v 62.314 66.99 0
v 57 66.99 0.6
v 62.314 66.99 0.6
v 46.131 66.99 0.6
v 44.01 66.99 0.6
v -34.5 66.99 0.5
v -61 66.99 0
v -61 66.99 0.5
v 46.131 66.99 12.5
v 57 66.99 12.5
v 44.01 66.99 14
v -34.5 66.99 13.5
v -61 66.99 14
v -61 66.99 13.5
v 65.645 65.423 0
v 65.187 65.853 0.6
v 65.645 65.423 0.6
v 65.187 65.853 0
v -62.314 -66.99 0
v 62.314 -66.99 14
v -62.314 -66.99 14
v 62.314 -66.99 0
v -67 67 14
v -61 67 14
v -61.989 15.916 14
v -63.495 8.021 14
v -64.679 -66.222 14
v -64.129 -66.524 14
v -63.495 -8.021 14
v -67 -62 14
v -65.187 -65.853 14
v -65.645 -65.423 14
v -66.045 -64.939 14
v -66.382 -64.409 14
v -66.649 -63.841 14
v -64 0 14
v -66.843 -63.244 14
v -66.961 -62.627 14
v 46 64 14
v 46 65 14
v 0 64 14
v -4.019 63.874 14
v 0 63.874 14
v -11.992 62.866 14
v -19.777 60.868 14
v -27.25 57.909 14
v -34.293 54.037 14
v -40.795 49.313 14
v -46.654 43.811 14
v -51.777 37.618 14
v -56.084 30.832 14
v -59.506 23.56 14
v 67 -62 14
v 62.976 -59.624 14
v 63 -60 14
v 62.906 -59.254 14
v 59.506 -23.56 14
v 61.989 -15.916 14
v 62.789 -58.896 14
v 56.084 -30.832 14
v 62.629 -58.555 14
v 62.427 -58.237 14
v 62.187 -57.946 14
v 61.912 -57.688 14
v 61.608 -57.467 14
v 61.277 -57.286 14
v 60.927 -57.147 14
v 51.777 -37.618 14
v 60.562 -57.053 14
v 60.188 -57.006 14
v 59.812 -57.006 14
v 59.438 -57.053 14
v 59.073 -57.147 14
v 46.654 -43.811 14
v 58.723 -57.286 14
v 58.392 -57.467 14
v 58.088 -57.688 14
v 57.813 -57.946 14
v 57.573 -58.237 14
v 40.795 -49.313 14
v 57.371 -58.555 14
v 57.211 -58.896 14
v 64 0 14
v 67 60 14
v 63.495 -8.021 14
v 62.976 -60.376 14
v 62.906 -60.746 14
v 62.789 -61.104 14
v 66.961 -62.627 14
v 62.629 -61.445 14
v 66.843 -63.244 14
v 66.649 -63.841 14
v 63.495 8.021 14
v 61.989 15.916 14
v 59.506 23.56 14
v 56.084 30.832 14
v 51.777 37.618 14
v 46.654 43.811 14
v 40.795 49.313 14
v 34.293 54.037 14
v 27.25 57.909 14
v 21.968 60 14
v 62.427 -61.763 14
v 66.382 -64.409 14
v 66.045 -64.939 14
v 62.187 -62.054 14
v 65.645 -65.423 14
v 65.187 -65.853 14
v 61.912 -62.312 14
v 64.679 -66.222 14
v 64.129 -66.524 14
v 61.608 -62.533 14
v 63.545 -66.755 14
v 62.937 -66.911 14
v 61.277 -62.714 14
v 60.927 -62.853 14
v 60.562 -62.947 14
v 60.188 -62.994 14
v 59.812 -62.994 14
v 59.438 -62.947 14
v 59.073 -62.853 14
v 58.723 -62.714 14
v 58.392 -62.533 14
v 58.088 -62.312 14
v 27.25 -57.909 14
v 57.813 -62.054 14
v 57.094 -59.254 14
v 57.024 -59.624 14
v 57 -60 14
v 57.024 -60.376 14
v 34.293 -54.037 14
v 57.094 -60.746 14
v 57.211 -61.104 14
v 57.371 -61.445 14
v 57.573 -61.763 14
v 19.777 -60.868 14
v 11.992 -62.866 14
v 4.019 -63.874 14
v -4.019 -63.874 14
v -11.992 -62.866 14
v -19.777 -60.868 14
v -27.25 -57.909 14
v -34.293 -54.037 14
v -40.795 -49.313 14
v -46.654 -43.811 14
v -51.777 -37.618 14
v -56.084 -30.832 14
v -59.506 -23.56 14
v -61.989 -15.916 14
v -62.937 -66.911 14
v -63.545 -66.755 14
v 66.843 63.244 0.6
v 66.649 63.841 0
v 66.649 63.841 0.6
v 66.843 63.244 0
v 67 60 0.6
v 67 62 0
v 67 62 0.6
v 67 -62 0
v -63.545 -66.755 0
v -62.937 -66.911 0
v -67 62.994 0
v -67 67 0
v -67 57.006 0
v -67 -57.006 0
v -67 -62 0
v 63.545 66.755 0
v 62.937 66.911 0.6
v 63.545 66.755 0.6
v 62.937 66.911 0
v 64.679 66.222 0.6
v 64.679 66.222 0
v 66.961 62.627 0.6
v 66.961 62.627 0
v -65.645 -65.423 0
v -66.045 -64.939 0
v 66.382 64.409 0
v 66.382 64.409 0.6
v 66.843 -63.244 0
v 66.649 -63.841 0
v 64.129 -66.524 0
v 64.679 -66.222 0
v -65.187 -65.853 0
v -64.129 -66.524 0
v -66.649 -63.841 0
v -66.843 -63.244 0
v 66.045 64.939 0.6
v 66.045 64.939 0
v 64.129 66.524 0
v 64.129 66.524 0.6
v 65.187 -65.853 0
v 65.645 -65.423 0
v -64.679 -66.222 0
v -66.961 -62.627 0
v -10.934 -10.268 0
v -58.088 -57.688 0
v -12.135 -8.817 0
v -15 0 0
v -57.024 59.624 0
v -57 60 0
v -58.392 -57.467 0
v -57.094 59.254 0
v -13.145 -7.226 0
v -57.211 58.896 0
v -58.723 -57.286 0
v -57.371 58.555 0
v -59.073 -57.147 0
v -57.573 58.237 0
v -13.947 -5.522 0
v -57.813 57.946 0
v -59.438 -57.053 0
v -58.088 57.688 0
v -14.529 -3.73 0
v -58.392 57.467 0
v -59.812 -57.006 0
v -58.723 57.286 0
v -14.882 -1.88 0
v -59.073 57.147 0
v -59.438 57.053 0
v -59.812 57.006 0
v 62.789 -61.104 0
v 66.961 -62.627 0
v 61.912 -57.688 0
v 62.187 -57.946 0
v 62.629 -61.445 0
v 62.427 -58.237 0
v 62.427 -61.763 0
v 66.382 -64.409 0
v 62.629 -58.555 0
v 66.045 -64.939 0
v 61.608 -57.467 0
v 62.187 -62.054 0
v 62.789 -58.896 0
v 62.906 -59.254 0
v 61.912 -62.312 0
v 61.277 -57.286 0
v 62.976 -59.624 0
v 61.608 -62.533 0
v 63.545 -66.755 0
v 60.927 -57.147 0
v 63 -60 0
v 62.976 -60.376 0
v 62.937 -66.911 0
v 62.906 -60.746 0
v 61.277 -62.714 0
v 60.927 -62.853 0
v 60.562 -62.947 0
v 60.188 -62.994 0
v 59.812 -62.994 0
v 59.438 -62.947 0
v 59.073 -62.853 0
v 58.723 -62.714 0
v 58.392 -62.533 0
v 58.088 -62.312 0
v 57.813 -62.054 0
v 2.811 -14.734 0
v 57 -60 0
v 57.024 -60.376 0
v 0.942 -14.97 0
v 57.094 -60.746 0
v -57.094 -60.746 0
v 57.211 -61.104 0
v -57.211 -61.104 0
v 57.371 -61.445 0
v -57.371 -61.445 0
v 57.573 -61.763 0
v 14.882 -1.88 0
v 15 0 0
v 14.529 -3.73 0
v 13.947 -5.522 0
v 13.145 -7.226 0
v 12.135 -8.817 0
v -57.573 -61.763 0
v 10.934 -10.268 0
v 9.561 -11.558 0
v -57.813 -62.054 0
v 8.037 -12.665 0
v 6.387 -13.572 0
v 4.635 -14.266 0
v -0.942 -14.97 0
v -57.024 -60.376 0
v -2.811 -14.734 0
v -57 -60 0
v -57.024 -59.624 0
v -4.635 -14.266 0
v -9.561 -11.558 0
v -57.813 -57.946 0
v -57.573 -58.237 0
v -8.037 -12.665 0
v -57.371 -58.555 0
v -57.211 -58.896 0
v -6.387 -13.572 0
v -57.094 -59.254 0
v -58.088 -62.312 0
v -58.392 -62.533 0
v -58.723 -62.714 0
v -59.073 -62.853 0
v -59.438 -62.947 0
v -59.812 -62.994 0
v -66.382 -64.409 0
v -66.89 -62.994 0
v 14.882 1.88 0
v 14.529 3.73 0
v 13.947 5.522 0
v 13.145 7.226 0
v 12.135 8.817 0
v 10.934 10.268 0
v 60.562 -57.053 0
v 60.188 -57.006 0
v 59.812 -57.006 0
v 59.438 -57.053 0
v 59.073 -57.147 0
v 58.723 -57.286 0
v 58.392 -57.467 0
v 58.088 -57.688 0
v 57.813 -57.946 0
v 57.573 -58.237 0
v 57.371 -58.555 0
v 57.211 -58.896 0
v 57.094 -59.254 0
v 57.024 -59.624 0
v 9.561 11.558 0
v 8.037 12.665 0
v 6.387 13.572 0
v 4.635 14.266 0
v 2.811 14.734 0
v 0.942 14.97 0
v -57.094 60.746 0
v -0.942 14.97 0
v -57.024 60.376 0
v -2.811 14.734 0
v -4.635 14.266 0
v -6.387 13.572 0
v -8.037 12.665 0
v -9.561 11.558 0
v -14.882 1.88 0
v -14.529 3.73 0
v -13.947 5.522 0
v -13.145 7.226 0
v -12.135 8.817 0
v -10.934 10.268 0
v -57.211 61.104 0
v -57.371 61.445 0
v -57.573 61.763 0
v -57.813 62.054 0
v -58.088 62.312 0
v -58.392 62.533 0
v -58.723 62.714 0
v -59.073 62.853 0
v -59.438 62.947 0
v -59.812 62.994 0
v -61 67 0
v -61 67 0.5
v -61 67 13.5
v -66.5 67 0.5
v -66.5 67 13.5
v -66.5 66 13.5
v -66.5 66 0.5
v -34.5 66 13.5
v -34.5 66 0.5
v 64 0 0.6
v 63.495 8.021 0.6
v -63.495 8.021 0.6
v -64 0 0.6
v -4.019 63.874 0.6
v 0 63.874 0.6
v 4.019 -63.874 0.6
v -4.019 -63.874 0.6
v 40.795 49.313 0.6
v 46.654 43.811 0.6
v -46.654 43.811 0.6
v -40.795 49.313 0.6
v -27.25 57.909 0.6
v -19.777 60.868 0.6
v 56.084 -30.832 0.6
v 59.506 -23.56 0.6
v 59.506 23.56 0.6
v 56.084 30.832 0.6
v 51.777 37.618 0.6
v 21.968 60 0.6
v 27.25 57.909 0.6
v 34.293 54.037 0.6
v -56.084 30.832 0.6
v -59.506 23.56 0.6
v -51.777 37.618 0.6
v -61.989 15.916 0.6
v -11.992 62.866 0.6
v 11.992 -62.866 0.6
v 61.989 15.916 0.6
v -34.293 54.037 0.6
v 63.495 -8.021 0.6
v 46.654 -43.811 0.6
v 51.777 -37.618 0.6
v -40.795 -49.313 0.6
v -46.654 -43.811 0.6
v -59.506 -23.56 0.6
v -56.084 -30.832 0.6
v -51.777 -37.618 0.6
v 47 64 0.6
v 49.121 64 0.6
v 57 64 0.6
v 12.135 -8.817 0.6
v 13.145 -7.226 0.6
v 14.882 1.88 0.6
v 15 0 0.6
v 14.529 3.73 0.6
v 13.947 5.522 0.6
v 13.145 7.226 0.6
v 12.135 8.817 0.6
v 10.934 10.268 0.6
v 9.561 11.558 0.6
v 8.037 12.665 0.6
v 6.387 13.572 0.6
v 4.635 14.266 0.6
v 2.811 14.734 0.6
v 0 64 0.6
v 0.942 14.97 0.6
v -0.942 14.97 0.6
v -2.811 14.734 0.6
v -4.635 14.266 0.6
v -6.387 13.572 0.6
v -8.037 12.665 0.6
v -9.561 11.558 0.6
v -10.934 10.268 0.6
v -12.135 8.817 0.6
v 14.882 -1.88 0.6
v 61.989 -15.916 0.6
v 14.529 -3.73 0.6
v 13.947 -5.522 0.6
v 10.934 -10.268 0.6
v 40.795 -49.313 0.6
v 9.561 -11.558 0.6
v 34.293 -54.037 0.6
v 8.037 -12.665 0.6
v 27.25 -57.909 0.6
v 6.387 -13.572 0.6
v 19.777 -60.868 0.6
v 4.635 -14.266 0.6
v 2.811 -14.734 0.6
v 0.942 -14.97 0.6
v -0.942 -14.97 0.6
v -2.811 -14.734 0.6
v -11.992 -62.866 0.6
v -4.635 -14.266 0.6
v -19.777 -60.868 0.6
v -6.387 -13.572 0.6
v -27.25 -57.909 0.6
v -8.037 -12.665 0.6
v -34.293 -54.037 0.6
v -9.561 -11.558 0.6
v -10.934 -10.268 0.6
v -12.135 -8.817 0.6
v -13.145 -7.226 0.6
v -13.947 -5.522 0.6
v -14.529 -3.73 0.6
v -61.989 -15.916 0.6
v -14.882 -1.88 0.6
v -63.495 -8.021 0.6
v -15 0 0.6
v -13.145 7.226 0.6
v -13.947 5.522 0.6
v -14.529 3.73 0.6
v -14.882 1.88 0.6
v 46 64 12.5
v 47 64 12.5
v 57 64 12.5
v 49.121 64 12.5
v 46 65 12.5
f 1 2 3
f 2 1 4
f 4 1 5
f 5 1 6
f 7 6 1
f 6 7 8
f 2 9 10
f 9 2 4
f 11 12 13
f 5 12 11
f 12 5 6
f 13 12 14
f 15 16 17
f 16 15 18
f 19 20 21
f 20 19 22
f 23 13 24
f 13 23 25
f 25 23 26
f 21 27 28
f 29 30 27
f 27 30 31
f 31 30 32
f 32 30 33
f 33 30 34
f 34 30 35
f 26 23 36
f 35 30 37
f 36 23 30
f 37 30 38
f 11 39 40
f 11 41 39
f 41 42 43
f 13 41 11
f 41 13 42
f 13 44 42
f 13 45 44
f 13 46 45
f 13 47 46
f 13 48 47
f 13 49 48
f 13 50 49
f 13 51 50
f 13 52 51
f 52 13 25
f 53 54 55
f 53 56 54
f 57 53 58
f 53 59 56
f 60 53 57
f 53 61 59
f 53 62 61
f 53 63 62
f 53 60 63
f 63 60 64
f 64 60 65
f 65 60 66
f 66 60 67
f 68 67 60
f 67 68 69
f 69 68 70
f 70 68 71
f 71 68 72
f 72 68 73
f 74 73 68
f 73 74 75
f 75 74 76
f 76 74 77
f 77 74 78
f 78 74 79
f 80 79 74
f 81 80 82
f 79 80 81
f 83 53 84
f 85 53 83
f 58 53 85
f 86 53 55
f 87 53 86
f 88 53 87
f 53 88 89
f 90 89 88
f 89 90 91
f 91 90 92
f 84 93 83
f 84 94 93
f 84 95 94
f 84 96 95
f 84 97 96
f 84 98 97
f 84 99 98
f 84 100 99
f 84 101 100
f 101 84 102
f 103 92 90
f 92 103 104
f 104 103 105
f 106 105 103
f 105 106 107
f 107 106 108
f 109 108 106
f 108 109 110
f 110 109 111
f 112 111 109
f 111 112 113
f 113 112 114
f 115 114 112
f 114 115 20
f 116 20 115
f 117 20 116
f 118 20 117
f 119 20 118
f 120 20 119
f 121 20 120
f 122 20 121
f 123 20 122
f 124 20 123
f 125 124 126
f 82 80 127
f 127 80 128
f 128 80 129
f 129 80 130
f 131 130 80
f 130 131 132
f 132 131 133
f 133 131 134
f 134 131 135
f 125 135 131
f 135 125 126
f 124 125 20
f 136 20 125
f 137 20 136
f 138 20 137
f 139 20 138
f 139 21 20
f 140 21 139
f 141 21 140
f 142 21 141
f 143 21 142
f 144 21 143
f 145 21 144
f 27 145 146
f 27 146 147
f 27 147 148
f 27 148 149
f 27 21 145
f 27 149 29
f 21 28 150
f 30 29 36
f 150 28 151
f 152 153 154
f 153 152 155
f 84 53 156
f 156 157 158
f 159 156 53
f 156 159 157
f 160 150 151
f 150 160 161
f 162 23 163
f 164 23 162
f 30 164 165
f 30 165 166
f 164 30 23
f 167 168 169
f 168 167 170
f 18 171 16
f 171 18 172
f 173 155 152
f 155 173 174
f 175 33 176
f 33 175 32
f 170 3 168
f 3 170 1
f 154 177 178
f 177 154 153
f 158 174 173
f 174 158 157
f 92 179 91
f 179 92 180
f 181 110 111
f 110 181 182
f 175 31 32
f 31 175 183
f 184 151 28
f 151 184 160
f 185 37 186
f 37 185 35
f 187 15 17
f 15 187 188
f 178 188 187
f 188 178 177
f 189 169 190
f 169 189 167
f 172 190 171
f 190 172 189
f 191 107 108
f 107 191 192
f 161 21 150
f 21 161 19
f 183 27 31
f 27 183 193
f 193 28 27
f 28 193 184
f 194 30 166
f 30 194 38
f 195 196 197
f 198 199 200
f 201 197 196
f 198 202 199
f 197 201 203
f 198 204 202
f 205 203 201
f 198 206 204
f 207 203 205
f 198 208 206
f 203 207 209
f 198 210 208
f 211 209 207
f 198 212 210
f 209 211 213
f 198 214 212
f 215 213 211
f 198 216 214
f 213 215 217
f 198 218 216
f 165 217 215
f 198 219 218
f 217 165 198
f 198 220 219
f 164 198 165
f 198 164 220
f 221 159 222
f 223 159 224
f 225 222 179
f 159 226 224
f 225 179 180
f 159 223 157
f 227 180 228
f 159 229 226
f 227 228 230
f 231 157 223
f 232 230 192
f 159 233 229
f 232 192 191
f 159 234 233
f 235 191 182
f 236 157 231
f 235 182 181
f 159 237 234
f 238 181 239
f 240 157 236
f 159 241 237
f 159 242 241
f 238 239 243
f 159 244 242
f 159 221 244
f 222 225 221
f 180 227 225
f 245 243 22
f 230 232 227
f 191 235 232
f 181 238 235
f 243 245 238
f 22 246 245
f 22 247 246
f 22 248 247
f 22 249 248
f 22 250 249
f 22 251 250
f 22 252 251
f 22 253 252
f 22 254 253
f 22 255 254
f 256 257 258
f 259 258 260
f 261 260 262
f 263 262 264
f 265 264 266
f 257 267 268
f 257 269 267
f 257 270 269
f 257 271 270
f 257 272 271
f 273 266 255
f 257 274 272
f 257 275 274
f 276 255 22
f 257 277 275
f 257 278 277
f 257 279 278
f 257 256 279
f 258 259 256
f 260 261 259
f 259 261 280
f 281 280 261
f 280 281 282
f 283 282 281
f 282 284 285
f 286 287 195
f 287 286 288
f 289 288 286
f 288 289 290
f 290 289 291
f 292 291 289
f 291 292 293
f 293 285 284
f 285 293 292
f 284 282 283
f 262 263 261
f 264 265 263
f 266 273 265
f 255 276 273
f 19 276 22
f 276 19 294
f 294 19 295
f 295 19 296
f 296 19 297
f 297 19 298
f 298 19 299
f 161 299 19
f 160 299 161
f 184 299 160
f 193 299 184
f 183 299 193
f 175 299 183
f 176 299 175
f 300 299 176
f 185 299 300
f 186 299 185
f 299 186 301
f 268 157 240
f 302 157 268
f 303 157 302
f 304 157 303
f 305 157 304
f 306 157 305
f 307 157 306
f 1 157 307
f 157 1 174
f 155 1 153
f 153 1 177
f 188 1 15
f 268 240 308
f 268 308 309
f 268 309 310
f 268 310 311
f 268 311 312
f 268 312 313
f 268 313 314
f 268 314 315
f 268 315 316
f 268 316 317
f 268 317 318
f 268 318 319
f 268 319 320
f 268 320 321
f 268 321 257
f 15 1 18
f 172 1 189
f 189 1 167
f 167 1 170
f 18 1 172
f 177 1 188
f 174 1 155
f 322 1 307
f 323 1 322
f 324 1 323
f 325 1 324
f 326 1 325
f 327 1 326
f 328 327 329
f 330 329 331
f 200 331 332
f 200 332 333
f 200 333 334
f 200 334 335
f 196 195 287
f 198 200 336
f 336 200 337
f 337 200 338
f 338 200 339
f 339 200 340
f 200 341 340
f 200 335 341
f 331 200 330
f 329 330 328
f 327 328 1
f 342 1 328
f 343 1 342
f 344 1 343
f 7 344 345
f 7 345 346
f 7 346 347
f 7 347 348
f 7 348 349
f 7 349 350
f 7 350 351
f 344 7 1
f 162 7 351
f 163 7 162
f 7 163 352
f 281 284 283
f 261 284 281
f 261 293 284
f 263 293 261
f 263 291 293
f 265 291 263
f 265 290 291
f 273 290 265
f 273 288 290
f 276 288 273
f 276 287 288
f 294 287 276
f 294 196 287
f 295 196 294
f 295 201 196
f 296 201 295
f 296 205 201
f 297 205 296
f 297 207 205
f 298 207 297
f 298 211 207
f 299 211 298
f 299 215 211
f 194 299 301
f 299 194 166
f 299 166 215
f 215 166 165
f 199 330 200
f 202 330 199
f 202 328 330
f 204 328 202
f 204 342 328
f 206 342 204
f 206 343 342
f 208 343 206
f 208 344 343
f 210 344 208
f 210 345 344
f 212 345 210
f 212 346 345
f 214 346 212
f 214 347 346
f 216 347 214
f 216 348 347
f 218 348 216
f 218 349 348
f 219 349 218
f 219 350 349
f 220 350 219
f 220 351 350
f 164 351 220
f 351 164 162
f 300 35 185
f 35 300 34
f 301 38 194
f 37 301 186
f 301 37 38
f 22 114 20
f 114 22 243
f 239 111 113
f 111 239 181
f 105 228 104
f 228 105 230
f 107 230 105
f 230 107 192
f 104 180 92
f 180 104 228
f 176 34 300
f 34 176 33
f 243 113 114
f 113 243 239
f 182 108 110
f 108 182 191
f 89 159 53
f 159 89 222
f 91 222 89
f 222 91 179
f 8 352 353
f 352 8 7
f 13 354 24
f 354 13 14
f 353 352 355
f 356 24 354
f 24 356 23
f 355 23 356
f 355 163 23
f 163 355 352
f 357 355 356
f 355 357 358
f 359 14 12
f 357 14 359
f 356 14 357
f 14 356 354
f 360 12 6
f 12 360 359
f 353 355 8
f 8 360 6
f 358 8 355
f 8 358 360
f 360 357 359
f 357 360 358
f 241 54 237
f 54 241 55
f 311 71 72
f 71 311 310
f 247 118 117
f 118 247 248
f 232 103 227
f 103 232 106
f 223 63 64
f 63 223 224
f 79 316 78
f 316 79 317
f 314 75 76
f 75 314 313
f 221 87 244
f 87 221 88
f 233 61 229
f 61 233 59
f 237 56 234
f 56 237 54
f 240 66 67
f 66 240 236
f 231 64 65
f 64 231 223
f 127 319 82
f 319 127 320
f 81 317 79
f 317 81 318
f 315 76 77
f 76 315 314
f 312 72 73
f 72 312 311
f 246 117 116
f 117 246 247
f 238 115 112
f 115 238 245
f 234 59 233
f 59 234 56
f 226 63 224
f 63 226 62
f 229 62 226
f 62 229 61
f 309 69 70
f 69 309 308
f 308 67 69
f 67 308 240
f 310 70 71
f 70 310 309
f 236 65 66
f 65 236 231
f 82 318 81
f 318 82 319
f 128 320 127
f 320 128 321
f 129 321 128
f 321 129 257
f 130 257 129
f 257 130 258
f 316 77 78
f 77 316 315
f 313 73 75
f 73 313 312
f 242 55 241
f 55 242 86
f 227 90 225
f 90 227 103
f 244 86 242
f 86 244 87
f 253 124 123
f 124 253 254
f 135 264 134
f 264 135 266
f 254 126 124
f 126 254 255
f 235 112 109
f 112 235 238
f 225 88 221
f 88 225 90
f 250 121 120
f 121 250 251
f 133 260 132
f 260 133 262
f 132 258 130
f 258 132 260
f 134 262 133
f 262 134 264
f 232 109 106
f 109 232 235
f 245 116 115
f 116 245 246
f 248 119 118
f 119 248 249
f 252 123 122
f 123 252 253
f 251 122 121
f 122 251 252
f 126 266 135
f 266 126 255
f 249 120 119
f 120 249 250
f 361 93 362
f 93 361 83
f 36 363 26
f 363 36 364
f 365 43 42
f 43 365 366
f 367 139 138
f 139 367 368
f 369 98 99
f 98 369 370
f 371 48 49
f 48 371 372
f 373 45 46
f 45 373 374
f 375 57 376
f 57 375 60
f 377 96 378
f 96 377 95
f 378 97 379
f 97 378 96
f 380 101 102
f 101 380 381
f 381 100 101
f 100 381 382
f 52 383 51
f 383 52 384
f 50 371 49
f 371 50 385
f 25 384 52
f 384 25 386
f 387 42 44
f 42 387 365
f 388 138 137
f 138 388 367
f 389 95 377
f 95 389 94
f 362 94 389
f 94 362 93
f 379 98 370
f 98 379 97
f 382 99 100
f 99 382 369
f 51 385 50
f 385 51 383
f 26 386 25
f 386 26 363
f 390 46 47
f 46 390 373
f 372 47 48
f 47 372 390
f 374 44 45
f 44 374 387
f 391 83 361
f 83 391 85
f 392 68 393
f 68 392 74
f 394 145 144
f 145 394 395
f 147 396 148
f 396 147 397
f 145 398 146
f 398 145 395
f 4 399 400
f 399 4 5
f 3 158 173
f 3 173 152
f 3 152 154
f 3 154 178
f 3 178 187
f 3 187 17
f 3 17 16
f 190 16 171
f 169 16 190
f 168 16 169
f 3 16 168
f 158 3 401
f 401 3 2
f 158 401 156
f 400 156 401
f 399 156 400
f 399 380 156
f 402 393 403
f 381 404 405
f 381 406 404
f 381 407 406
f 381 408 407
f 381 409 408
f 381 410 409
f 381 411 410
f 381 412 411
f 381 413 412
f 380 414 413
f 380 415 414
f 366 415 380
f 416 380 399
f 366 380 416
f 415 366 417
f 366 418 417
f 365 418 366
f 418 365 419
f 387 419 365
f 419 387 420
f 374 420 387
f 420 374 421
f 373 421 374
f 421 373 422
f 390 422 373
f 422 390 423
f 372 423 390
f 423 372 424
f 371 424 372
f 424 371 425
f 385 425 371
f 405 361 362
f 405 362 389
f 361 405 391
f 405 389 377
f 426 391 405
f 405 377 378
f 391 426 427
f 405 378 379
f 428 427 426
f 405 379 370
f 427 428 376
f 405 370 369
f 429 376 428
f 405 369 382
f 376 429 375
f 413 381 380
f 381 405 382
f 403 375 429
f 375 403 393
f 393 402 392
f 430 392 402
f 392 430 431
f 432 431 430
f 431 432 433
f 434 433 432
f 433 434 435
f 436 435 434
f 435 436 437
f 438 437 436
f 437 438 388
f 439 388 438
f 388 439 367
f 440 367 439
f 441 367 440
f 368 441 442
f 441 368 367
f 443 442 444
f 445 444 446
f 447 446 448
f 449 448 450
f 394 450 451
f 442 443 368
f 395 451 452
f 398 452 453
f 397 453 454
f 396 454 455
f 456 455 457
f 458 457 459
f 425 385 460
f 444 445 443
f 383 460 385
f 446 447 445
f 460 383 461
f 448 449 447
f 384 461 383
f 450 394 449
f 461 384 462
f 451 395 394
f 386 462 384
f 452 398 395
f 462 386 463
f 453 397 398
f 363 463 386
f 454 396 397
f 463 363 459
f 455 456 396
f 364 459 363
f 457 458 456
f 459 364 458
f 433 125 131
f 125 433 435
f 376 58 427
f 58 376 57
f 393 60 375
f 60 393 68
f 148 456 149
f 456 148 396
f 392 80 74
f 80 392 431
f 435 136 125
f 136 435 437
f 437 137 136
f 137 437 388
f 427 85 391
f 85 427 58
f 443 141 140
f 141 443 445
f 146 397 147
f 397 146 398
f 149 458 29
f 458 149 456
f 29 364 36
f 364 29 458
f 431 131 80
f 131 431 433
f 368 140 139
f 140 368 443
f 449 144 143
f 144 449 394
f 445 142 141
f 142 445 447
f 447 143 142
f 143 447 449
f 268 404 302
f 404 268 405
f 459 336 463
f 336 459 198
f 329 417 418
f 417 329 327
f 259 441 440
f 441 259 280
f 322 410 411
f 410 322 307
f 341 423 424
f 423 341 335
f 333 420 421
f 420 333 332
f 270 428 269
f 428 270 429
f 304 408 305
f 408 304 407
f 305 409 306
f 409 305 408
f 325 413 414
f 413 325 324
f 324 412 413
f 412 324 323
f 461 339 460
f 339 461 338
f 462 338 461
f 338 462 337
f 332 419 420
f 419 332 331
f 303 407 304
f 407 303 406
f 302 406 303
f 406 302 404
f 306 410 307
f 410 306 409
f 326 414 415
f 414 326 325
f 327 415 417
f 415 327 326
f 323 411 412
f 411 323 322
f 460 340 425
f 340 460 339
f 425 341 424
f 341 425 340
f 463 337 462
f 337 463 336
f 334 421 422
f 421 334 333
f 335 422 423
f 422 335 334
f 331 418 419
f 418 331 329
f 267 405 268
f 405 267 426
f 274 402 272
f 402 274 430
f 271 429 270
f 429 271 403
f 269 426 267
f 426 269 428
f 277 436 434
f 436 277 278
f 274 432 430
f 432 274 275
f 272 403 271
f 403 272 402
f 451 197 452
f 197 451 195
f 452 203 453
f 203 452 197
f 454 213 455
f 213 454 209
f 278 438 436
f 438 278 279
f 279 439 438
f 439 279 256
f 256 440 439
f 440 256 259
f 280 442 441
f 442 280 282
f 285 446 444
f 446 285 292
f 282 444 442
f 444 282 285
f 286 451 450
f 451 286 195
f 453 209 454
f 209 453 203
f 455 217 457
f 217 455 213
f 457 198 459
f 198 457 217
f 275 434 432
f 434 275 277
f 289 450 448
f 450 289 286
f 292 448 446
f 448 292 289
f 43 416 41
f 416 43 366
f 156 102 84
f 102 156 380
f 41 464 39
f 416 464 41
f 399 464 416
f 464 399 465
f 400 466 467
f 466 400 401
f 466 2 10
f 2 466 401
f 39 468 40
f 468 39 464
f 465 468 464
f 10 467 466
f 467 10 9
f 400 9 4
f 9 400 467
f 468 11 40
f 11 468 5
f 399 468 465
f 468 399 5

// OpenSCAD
$fn = 50;


difference() {
	union() {
		hull() {
			translate(v = [-62.0000000000, 62.0000000000, 0]) {
				cylinder(h = 14, r = 5);
			}
			translate(v = [62.0000000000, 62.0000000000, 0]) {
				cylinder(h = 14, r = 5);
			}
			translate(v = [-62.0000000000, -62.0000000000, 0]) {
				cylinder(h = 14, r = 5);
			}
			translate(v = [62.0000000000, -62.0000000000, 0]) {
				cylinder(h = 14, r = 5);
			}
		}
		translate(v = [-67.0000000000, 61.0000000000, 0]) {
			cube(size = [6, 6, 14]);
		}
	}
	union() {
		translate(v = [-67.5000000000, -60.0000000000, -250.0000000000]) {
			rotate(a = [0, 0, 0]) {
				difference() {
					union() {
						hull() {
							translate(v = [7.5000000000, 0, 0]) {
								cylinder(h = 250, r = 3.0000000000, r1 = 3.0000000000, r2 = 3.0000000000);
							}
							translate(v = [-7.5000000000, 0, 0]) {
								cylinder(h = 250, r = 3.0000000000, r1 = 3.0000000000, r2 = 3.0000000000);
							}
						}
					}
					union();
				}
			}
		}
		translate(v = [-67.5000000000, 60.0000000000, -250.0000000000]) {
			rotate(a = [0, 0, 0]) {
				difference() {
					union() {
						hull() {
							translate(v = [7.5000000000, 0, 0]) {
								cylinder(h = 250, r = 3.0000000000, r1 = 3.0000000000, r2 = 3.0000000000);
							}
							translate(v = [-7.5000000000, 0, 0]) {
								cylinder(h = 250, r = 3.0000000000, r1 = 3.0000000000, r2 = 3.0000000000);
							}
						}
					}
					union();
				}
			}
		}
		translate(v = [-66.5000000000, 66.0000000000, 0.5000000000]) {
			cube(size = [32, 1, 13.0000000000]);
		}
		translate(v = [60.0000000000, -60.0000000000, -50.0000000000]) {
			cylinder(h = 100, r = 3.0000000000);
		}
		translate(v = [0, 0, 0.6000000000]) {
			cylinder(h = 16.4000000000, r = 64.0000000000);
		}
		translate(v = [0, 0, -7.0000000000]) {
			cylinder(h = 14, r = 15.0000000000);
		}
		translate(v = [0.0000000000, 60.0000000000, 0.6000000000]) {
			cube(size = [67.0000000000, 4, 16.4000000000]);
		}
		translate(v = [57.0000000000, 60.0000000000, 0.6000000000]) {
			cube(size = [10, 7, 16.4000000000]);
		}
		translate(v = [46.0000000000, 60.0000000000, 12.5000000000]) {
			cube(size = [21, 7, 1.5000000000]);
		}
		translate(v = [43.2500000000, 67.7500000000, 0.6000000000]) {
			rotate(a = [0, 0, -45]) {
				cube(size = [7.5000000000, 1.5000000000, 16.4000000000]);
			}
		}
		translate(v = [12.0610000000, 58.0000000000, 0.6000000000]) {
			cube(size = [7.5000000000, 2, 13.4000000000]);
		}
	}
}
